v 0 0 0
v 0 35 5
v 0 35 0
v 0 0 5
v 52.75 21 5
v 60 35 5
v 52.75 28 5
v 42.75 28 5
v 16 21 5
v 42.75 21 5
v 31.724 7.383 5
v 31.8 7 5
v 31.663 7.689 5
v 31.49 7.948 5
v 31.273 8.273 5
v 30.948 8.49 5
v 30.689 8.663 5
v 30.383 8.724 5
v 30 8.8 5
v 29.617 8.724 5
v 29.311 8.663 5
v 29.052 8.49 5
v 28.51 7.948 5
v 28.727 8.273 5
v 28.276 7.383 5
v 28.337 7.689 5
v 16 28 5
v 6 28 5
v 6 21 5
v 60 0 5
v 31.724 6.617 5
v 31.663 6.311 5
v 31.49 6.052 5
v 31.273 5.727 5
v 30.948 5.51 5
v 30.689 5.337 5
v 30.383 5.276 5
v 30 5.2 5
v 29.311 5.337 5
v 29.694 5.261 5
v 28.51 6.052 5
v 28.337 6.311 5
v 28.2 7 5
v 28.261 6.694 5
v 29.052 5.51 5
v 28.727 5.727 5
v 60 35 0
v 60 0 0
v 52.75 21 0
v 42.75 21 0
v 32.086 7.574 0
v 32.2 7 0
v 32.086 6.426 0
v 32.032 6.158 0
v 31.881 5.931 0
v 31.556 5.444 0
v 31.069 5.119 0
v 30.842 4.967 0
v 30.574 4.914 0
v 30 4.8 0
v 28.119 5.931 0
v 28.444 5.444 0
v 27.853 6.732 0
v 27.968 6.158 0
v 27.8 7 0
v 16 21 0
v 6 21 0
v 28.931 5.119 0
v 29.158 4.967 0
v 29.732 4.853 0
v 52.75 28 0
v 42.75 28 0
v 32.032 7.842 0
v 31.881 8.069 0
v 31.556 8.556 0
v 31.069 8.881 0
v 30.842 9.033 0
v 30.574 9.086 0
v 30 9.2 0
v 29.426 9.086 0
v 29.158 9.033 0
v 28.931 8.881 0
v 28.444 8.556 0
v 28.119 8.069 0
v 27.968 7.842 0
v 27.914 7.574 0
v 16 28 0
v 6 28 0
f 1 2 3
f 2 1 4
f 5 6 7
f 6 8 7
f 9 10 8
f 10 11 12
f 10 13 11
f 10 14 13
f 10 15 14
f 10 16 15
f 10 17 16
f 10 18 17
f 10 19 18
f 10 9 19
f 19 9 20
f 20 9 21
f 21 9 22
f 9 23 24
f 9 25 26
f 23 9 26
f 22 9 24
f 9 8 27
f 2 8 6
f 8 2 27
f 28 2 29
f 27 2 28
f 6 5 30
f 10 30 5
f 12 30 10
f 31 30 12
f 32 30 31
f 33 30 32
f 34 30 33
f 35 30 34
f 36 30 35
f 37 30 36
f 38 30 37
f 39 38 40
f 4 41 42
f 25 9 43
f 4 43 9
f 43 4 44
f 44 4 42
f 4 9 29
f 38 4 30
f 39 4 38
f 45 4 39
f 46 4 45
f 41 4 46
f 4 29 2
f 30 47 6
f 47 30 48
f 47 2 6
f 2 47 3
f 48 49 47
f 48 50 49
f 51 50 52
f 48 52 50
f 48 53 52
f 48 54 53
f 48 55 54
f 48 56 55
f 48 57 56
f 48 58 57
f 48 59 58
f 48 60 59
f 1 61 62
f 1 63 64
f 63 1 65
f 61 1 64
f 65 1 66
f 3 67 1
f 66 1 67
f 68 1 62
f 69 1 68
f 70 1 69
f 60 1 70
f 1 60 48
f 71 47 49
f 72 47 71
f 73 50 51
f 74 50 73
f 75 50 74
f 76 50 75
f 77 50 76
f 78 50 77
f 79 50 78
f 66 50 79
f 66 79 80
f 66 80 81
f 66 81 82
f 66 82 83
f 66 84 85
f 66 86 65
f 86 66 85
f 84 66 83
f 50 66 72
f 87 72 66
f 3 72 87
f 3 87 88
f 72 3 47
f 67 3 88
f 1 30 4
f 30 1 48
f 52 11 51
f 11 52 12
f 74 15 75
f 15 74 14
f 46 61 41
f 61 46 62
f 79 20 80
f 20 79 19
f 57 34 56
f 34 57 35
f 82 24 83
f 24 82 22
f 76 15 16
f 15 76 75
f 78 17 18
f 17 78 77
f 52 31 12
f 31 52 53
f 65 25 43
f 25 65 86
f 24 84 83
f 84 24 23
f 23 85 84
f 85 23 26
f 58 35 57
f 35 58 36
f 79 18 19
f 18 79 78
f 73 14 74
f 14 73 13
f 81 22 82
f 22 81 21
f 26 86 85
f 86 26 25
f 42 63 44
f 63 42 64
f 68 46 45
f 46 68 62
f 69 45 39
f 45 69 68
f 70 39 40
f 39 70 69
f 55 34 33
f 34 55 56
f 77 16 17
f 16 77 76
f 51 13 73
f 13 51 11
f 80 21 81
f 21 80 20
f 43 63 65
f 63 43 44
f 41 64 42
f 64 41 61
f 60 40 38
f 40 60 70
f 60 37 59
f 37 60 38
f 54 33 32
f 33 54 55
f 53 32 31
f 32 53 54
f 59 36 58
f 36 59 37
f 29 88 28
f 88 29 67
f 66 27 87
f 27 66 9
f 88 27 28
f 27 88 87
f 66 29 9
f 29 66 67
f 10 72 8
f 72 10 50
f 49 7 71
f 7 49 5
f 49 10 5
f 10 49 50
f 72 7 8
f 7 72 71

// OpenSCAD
//Author Marius Munthe-Kaas
//mariussmk@gmail.com

// Very simple rack mount extension
// to fasten the 8 Port Passive Gigabit POE Injector Panel 12-48V POE8PG 
translate([0,0,0]) {
    $l = 60; //Length of POE box
    $w = 35; // Width of the cube
    $holeThrough = 50; //Just very tall height to ensure cut through
    $additionalSpace = 6; 
    $positionHoleXLeft = 7;
    $leftHoleDiamater = 5;
    
    $rackHoleSpace = 31.75; //Space between screews in rack
    
    $rightHoleLength = 10;
    $rightHoleDiameter = 7; 
    $positionHoleXRight = $w - $positionHoleXLeft - 7; //7 is the space from the right edge
    
    $rightHole2Y = ($rightHoleLength / 2) + $additionalSpace + $rackHoleSpace;
    
    $holeAdjustedZ = -10; //Z-axis. To ensure cut through
    
    $full = 60;
    
    difference() {
        cube([$full, $w, 5]);
        translate([$full / 2, $positionHoleXLeft, $holeAdjustedZ]) {
            cylinder($holeThrough, 5, center = true);
        }
        translate([$additionalSpace, $positionHoleXRight, $holeAdjustedZ]) {
             cube([$rightHoleLength, $rightHoleDiameter, $holeThrough]);
        }
        
        translate([$rightHole2Y, $positionHoleXRight, $holeAdjustedZ]) {
             cube([$rightHoleLength, $rightHoleDiameter, $holeThrough]);
            
        }
    }
}
